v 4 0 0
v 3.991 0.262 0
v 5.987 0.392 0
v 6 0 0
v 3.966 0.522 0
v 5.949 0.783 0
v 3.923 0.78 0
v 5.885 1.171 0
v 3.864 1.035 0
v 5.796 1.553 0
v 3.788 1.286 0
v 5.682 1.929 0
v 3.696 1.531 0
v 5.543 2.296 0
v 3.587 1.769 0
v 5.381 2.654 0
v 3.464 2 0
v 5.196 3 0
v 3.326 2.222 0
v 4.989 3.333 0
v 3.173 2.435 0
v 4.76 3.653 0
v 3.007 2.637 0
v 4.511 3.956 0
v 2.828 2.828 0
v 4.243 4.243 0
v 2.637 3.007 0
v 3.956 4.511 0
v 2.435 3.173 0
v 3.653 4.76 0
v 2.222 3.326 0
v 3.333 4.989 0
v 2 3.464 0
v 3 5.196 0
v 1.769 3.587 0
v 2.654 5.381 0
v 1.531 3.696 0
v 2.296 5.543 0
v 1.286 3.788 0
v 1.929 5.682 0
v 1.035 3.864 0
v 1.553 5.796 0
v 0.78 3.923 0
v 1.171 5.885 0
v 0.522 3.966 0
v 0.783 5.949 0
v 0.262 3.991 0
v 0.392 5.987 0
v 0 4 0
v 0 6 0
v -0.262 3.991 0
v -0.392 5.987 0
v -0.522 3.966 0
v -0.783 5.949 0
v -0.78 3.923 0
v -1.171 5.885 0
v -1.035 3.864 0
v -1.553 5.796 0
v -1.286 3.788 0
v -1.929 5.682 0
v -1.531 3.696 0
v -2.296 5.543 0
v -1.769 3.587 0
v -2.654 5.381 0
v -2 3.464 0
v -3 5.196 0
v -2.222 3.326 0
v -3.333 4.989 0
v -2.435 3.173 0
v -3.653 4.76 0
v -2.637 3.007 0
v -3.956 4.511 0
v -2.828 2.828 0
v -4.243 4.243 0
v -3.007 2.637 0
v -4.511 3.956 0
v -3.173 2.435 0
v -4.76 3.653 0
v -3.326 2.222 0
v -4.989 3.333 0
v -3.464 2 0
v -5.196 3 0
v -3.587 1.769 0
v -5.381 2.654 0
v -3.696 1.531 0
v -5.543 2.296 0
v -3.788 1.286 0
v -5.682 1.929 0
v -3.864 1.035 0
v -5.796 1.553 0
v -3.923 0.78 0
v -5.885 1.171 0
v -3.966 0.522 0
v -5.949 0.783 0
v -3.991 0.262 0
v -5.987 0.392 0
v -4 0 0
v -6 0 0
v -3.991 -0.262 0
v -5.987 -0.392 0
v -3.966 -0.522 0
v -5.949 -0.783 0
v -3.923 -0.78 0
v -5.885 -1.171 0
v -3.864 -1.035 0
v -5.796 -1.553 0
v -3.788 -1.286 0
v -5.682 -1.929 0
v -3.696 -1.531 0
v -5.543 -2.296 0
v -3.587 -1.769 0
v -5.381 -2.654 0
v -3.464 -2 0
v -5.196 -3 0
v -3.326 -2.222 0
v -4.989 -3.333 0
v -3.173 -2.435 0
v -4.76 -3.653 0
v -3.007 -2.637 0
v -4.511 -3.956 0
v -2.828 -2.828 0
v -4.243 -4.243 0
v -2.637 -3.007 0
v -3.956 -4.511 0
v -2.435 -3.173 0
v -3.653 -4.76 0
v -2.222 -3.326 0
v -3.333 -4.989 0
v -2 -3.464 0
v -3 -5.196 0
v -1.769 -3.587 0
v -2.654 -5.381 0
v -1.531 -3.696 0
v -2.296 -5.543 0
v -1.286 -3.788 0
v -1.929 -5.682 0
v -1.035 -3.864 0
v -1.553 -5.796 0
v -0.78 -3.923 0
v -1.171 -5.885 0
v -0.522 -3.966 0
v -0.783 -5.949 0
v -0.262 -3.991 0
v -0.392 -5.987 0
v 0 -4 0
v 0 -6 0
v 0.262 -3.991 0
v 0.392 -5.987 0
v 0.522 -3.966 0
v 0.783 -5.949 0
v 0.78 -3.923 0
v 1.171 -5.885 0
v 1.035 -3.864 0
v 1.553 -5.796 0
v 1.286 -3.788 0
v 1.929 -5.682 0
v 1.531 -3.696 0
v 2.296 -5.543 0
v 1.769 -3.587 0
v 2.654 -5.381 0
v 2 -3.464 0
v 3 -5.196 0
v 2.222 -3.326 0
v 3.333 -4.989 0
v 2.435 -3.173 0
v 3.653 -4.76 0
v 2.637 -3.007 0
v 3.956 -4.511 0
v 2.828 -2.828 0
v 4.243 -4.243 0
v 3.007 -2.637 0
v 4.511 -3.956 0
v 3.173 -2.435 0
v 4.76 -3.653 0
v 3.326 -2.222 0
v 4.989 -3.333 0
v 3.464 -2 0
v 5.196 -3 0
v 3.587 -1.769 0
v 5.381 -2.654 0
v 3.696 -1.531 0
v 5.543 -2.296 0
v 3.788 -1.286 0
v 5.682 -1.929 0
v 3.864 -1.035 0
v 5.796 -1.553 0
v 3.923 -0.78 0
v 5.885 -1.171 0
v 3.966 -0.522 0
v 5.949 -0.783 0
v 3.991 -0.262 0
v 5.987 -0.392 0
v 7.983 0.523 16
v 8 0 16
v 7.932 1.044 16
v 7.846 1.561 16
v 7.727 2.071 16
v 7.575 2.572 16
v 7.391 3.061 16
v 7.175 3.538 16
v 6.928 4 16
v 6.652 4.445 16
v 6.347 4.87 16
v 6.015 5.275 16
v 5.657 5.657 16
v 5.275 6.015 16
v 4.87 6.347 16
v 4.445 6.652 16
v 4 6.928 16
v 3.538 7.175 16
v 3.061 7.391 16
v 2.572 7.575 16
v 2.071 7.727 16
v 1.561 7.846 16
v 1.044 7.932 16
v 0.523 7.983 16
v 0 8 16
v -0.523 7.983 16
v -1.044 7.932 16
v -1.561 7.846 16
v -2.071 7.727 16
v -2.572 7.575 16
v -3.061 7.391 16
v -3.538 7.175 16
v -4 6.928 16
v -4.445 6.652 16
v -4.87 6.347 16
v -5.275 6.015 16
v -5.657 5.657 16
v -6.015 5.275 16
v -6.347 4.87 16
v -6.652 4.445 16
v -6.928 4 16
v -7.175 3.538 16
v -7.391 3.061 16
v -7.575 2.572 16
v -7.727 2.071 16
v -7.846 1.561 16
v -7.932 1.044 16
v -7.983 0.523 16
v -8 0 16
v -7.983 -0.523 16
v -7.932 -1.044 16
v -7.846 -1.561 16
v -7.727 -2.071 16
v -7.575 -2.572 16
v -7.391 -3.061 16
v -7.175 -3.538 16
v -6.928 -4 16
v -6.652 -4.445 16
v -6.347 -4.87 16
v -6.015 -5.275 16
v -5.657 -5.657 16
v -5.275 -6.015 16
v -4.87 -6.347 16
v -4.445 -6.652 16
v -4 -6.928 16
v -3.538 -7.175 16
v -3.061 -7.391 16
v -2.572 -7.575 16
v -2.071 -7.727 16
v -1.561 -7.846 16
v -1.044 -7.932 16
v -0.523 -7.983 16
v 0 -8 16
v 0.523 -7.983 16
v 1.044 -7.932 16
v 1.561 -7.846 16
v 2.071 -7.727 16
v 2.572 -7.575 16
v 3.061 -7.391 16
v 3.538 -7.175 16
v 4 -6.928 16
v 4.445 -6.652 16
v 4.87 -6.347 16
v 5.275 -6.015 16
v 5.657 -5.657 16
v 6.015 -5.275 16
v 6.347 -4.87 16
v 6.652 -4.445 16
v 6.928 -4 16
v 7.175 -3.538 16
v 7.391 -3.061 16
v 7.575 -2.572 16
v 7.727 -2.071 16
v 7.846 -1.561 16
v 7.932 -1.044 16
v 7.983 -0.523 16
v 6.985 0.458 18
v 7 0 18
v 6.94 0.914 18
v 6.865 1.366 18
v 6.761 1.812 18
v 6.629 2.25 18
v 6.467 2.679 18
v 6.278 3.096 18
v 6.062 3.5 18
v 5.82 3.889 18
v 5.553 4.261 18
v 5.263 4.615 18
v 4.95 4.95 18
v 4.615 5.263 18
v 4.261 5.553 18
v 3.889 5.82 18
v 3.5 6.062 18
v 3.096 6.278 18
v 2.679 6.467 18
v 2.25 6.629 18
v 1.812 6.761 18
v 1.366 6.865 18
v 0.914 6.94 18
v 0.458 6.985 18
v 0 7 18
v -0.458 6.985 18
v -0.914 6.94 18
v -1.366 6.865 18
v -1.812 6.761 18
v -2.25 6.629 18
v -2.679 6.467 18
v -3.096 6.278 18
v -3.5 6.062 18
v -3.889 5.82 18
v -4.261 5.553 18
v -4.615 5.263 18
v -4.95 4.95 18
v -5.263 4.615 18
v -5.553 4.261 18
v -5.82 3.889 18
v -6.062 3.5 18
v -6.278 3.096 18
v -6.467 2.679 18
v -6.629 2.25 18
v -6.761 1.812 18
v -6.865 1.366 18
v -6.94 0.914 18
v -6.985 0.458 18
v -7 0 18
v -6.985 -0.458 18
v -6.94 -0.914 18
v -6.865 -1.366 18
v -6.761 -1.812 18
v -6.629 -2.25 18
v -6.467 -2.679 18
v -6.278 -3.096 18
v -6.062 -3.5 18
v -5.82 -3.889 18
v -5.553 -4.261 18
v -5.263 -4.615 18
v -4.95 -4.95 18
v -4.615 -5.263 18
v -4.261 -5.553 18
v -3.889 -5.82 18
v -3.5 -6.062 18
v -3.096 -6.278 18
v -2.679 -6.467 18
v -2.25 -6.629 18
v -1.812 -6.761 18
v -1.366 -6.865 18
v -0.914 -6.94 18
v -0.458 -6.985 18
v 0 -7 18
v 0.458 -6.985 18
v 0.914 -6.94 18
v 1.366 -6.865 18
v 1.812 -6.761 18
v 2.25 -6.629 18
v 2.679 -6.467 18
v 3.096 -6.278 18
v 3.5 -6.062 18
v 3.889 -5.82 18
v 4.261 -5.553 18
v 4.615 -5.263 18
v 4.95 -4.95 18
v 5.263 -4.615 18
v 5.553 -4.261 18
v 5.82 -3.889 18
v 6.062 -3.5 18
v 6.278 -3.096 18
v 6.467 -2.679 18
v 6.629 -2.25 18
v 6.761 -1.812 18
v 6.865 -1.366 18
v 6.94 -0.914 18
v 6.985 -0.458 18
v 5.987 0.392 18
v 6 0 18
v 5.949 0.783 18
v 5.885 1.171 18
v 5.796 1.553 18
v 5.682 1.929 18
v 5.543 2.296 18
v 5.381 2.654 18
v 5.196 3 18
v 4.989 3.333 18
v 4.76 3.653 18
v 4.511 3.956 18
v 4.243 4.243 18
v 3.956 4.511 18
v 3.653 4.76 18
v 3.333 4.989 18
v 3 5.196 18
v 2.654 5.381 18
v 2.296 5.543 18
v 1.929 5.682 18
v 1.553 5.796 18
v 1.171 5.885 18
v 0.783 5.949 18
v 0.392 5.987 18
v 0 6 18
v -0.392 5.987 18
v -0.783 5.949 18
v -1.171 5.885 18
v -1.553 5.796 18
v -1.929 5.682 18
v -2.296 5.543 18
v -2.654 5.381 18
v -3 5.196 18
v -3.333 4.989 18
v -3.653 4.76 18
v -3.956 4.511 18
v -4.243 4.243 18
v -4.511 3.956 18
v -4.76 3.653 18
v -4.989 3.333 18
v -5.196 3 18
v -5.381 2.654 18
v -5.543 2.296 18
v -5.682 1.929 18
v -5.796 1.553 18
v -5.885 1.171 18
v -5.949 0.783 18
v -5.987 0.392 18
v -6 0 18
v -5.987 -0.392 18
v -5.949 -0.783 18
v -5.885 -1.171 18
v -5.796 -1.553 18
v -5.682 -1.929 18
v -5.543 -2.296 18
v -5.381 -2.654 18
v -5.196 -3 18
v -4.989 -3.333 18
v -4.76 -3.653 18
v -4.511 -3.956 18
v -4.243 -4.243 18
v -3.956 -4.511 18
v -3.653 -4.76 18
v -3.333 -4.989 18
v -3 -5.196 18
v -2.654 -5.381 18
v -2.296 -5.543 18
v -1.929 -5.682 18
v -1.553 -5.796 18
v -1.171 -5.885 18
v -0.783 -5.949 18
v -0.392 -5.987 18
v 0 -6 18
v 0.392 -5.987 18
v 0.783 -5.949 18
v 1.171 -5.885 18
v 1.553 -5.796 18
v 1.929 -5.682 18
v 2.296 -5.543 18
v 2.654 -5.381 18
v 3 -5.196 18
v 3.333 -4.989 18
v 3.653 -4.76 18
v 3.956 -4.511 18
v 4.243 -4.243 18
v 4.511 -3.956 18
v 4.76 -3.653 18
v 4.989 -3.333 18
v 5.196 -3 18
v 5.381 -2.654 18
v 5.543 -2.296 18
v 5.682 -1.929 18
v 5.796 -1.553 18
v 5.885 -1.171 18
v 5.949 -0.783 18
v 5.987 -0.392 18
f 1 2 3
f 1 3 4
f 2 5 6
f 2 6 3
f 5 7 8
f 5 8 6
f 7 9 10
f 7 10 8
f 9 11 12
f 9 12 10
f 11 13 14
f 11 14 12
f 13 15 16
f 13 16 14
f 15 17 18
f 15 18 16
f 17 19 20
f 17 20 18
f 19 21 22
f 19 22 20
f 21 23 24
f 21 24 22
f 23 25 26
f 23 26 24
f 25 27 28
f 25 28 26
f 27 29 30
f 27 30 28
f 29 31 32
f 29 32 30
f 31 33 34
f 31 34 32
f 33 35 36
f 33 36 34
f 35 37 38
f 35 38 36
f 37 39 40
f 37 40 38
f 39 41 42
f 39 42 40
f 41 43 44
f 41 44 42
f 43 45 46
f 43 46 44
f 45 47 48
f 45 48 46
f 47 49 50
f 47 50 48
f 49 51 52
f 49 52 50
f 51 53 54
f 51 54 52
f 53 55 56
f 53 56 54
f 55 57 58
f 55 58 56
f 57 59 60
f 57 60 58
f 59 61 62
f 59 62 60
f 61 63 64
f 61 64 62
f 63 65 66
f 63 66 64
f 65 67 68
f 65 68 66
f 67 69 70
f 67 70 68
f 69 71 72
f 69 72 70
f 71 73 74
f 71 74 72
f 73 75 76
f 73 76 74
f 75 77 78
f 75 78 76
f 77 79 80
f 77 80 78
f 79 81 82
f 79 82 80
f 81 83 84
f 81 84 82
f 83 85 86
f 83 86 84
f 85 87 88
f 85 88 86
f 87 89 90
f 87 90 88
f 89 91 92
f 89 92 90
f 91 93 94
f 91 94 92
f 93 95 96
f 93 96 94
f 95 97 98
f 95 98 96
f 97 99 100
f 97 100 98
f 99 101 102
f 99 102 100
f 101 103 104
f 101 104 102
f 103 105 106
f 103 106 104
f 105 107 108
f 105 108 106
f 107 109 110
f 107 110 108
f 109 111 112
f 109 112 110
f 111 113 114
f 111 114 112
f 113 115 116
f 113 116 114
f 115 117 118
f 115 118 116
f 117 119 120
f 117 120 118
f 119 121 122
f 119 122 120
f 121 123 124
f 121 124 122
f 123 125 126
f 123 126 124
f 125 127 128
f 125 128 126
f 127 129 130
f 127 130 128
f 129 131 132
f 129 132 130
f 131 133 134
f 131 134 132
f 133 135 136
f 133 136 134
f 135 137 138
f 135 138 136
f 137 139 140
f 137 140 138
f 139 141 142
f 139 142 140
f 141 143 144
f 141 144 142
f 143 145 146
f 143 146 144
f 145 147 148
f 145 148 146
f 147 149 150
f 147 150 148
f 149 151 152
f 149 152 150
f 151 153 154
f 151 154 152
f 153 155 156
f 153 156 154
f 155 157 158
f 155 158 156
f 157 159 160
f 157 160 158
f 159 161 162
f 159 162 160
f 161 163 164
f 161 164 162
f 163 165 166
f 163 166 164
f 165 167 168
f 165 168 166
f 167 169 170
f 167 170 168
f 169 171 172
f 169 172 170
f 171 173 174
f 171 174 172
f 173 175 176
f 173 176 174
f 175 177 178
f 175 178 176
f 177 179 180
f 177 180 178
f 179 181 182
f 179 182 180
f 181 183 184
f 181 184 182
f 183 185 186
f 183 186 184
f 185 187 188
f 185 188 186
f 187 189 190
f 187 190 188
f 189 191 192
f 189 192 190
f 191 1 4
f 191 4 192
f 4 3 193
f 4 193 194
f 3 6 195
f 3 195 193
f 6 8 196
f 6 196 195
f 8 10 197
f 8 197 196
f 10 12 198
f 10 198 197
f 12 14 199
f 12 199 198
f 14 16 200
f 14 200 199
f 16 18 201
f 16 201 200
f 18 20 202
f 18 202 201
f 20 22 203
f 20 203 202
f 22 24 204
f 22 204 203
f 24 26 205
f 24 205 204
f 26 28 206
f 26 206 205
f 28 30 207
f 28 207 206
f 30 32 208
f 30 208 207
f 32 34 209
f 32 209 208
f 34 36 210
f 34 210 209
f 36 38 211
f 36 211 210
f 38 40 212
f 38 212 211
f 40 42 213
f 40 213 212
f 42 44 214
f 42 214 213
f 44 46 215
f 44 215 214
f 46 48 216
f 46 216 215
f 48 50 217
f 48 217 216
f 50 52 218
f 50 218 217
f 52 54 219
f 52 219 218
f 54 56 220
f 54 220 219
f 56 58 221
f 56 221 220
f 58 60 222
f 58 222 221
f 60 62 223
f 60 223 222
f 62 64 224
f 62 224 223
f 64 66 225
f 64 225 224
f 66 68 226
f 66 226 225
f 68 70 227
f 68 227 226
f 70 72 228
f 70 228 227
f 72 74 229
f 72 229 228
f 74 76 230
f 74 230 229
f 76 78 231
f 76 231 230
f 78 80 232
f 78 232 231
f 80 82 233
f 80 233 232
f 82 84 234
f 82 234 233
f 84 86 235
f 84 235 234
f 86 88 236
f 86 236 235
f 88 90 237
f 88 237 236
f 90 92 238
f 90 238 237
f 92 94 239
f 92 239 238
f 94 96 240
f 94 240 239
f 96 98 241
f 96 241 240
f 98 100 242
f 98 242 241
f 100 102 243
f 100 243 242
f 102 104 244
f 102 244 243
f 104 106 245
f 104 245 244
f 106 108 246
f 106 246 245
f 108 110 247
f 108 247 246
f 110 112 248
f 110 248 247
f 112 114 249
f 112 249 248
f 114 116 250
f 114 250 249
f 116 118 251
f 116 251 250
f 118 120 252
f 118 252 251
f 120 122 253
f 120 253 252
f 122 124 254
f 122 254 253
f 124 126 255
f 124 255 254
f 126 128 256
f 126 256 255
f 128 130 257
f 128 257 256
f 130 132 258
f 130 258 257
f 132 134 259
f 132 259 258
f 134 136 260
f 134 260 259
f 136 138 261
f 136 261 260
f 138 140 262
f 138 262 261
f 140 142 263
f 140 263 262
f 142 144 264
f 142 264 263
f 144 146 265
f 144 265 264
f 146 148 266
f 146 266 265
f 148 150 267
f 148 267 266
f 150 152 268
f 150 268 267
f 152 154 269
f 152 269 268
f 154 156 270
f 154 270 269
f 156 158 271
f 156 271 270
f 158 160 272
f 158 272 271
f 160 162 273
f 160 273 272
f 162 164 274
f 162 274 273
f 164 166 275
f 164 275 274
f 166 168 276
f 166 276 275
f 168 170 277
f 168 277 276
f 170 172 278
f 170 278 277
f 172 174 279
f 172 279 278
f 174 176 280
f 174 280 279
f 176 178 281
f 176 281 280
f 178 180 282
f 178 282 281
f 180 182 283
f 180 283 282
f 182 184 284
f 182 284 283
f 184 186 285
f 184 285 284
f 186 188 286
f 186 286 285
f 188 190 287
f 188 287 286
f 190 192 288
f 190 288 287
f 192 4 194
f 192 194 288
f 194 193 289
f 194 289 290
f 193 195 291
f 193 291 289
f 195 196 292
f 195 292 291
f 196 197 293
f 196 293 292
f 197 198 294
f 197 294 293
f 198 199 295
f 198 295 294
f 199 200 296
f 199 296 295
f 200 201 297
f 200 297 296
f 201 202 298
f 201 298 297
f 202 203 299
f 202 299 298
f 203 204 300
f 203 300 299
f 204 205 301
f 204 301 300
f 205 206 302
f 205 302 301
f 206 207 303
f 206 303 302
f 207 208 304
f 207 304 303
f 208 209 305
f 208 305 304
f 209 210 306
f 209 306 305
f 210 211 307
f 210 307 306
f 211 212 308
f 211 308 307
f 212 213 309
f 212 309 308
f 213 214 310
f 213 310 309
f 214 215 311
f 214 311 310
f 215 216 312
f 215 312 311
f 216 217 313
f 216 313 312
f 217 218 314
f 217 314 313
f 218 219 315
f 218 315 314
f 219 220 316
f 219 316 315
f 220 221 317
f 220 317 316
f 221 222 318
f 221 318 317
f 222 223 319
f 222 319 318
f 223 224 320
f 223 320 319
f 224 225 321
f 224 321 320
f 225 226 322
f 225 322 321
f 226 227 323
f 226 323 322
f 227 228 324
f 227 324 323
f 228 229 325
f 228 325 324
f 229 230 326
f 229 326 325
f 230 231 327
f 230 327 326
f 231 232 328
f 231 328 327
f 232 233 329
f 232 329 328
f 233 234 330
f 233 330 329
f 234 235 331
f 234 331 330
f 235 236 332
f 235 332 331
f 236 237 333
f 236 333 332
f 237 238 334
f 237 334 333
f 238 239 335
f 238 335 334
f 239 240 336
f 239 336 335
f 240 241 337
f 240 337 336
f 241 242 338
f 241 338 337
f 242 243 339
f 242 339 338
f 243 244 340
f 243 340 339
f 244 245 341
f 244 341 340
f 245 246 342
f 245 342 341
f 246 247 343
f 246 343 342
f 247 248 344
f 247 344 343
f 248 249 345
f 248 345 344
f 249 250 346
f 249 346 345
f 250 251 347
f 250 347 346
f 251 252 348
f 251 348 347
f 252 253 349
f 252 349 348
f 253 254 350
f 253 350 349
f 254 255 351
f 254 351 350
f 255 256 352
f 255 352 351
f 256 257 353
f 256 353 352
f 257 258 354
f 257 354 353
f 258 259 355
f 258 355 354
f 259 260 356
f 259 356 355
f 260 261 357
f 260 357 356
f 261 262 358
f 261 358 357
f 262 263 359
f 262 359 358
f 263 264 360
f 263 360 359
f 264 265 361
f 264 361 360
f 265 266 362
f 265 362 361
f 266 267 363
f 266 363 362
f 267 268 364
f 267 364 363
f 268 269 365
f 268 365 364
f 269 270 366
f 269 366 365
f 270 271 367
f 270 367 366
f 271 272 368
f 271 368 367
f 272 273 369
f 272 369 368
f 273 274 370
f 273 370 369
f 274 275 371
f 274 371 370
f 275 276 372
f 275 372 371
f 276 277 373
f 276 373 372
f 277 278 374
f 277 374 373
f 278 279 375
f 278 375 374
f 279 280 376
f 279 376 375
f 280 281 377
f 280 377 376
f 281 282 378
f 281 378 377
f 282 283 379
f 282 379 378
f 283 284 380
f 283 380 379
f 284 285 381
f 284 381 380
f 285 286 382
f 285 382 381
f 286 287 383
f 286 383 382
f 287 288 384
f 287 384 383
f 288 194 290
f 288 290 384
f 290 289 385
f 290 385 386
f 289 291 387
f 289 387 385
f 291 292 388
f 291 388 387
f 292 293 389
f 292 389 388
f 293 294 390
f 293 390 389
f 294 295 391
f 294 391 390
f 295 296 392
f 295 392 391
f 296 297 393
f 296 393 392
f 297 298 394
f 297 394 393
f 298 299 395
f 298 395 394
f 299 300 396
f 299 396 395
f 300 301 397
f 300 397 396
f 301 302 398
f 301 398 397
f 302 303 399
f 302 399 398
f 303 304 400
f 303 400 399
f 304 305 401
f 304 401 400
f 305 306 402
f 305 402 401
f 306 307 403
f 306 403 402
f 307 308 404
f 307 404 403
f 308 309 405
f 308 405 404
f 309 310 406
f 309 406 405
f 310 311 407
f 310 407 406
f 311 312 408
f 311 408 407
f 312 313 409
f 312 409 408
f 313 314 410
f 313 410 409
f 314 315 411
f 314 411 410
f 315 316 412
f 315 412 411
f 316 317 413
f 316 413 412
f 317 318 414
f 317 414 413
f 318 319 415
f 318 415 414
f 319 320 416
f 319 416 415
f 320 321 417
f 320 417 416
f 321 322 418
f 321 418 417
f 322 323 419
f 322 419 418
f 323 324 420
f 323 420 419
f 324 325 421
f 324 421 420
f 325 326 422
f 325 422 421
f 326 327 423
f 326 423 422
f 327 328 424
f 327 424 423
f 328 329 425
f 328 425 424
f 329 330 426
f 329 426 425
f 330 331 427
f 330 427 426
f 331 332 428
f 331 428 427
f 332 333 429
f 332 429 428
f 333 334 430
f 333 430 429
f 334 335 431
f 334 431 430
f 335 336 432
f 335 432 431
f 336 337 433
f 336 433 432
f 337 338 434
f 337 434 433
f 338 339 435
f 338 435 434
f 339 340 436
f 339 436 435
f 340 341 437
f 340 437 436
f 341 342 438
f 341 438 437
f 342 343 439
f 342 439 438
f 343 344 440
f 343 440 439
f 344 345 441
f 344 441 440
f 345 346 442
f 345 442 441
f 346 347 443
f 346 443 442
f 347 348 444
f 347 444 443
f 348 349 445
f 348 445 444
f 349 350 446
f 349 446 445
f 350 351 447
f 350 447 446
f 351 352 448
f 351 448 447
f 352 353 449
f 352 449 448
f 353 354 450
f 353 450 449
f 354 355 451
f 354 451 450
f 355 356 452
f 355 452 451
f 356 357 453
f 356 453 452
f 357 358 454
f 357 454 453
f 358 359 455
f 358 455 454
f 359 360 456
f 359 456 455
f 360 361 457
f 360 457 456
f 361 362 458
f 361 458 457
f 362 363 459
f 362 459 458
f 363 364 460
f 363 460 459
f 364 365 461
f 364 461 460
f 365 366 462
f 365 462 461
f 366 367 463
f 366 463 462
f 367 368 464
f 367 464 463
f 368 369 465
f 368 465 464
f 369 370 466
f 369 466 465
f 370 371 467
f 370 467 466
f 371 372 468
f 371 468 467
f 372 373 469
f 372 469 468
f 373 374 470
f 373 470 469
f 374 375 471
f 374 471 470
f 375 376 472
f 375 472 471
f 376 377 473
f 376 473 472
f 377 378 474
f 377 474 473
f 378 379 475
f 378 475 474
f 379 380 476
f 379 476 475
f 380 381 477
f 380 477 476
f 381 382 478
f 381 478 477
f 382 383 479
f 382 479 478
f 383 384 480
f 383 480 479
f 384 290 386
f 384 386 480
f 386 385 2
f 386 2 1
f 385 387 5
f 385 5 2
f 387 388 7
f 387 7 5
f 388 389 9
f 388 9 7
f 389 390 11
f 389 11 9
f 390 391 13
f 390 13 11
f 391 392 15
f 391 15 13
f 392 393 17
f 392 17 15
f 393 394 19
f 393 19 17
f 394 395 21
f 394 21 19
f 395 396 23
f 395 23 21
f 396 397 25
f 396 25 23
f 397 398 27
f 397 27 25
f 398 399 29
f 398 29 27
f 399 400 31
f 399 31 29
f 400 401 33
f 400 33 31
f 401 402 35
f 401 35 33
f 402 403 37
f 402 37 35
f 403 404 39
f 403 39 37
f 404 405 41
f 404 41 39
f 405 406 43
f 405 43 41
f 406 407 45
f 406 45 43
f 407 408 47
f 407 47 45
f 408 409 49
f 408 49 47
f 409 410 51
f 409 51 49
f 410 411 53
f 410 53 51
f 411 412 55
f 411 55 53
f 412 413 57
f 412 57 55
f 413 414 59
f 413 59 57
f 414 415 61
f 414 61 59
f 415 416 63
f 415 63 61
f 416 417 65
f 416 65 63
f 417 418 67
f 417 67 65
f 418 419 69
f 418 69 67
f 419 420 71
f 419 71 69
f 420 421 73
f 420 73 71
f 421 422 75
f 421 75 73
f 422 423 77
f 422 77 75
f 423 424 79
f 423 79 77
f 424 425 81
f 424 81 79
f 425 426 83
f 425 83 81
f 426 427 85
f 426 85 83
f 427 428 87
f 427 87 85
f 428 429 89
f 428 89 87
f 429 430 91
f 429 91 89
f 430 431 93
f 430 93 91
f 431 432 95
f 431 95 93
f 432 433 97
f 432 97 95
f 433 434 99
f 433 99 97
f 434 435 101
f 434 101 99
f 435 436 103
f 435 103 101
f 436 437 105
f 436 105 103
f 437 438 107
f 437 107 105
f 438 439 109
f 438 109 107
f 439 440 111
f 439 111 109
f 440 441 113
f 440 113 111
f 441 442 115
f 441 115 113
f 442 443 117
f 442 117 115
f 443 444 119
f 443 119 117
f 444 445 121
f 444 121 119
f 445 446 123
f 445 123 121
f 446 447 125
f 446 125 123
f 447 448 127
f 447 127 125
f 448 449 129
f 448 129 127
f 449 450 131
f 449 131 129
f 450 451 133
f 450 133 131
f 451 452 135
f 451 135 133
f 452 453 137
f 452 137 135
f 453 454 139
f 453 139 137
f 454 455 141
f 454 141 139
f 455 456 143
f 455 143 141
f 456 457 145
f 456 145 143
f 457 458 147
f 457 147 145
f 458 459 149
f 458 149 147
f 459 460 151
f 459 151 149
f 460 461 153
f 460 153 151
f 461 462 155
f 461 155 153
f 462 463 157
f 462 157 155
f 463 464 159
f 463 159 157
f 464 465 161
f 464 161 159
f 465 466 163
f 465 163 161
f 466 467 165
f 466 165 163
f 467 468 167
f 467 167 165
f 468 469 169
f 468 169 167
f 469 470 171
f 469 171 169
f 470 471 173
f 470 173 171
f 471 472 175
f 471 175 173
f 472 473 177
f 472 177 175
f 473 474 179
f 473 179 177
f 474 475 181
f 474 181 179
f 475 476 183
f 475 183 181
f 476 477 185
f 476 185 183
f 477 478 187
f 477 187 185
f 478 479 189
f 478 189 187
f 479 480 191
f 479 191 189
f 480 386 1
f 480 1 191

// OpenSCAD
// Original MechIntel educational model. CC0-1.0. Units: mm.
// Not a standardized or load-rated component.
$fn=96;
// Section points: [radius, height], mm. Edit to change the profile.
section=[[4, 0], [6, 0], [8, 16], [7, 18], [6, 18]];
rotate_extrude($fn=96) polygon(points=section);
